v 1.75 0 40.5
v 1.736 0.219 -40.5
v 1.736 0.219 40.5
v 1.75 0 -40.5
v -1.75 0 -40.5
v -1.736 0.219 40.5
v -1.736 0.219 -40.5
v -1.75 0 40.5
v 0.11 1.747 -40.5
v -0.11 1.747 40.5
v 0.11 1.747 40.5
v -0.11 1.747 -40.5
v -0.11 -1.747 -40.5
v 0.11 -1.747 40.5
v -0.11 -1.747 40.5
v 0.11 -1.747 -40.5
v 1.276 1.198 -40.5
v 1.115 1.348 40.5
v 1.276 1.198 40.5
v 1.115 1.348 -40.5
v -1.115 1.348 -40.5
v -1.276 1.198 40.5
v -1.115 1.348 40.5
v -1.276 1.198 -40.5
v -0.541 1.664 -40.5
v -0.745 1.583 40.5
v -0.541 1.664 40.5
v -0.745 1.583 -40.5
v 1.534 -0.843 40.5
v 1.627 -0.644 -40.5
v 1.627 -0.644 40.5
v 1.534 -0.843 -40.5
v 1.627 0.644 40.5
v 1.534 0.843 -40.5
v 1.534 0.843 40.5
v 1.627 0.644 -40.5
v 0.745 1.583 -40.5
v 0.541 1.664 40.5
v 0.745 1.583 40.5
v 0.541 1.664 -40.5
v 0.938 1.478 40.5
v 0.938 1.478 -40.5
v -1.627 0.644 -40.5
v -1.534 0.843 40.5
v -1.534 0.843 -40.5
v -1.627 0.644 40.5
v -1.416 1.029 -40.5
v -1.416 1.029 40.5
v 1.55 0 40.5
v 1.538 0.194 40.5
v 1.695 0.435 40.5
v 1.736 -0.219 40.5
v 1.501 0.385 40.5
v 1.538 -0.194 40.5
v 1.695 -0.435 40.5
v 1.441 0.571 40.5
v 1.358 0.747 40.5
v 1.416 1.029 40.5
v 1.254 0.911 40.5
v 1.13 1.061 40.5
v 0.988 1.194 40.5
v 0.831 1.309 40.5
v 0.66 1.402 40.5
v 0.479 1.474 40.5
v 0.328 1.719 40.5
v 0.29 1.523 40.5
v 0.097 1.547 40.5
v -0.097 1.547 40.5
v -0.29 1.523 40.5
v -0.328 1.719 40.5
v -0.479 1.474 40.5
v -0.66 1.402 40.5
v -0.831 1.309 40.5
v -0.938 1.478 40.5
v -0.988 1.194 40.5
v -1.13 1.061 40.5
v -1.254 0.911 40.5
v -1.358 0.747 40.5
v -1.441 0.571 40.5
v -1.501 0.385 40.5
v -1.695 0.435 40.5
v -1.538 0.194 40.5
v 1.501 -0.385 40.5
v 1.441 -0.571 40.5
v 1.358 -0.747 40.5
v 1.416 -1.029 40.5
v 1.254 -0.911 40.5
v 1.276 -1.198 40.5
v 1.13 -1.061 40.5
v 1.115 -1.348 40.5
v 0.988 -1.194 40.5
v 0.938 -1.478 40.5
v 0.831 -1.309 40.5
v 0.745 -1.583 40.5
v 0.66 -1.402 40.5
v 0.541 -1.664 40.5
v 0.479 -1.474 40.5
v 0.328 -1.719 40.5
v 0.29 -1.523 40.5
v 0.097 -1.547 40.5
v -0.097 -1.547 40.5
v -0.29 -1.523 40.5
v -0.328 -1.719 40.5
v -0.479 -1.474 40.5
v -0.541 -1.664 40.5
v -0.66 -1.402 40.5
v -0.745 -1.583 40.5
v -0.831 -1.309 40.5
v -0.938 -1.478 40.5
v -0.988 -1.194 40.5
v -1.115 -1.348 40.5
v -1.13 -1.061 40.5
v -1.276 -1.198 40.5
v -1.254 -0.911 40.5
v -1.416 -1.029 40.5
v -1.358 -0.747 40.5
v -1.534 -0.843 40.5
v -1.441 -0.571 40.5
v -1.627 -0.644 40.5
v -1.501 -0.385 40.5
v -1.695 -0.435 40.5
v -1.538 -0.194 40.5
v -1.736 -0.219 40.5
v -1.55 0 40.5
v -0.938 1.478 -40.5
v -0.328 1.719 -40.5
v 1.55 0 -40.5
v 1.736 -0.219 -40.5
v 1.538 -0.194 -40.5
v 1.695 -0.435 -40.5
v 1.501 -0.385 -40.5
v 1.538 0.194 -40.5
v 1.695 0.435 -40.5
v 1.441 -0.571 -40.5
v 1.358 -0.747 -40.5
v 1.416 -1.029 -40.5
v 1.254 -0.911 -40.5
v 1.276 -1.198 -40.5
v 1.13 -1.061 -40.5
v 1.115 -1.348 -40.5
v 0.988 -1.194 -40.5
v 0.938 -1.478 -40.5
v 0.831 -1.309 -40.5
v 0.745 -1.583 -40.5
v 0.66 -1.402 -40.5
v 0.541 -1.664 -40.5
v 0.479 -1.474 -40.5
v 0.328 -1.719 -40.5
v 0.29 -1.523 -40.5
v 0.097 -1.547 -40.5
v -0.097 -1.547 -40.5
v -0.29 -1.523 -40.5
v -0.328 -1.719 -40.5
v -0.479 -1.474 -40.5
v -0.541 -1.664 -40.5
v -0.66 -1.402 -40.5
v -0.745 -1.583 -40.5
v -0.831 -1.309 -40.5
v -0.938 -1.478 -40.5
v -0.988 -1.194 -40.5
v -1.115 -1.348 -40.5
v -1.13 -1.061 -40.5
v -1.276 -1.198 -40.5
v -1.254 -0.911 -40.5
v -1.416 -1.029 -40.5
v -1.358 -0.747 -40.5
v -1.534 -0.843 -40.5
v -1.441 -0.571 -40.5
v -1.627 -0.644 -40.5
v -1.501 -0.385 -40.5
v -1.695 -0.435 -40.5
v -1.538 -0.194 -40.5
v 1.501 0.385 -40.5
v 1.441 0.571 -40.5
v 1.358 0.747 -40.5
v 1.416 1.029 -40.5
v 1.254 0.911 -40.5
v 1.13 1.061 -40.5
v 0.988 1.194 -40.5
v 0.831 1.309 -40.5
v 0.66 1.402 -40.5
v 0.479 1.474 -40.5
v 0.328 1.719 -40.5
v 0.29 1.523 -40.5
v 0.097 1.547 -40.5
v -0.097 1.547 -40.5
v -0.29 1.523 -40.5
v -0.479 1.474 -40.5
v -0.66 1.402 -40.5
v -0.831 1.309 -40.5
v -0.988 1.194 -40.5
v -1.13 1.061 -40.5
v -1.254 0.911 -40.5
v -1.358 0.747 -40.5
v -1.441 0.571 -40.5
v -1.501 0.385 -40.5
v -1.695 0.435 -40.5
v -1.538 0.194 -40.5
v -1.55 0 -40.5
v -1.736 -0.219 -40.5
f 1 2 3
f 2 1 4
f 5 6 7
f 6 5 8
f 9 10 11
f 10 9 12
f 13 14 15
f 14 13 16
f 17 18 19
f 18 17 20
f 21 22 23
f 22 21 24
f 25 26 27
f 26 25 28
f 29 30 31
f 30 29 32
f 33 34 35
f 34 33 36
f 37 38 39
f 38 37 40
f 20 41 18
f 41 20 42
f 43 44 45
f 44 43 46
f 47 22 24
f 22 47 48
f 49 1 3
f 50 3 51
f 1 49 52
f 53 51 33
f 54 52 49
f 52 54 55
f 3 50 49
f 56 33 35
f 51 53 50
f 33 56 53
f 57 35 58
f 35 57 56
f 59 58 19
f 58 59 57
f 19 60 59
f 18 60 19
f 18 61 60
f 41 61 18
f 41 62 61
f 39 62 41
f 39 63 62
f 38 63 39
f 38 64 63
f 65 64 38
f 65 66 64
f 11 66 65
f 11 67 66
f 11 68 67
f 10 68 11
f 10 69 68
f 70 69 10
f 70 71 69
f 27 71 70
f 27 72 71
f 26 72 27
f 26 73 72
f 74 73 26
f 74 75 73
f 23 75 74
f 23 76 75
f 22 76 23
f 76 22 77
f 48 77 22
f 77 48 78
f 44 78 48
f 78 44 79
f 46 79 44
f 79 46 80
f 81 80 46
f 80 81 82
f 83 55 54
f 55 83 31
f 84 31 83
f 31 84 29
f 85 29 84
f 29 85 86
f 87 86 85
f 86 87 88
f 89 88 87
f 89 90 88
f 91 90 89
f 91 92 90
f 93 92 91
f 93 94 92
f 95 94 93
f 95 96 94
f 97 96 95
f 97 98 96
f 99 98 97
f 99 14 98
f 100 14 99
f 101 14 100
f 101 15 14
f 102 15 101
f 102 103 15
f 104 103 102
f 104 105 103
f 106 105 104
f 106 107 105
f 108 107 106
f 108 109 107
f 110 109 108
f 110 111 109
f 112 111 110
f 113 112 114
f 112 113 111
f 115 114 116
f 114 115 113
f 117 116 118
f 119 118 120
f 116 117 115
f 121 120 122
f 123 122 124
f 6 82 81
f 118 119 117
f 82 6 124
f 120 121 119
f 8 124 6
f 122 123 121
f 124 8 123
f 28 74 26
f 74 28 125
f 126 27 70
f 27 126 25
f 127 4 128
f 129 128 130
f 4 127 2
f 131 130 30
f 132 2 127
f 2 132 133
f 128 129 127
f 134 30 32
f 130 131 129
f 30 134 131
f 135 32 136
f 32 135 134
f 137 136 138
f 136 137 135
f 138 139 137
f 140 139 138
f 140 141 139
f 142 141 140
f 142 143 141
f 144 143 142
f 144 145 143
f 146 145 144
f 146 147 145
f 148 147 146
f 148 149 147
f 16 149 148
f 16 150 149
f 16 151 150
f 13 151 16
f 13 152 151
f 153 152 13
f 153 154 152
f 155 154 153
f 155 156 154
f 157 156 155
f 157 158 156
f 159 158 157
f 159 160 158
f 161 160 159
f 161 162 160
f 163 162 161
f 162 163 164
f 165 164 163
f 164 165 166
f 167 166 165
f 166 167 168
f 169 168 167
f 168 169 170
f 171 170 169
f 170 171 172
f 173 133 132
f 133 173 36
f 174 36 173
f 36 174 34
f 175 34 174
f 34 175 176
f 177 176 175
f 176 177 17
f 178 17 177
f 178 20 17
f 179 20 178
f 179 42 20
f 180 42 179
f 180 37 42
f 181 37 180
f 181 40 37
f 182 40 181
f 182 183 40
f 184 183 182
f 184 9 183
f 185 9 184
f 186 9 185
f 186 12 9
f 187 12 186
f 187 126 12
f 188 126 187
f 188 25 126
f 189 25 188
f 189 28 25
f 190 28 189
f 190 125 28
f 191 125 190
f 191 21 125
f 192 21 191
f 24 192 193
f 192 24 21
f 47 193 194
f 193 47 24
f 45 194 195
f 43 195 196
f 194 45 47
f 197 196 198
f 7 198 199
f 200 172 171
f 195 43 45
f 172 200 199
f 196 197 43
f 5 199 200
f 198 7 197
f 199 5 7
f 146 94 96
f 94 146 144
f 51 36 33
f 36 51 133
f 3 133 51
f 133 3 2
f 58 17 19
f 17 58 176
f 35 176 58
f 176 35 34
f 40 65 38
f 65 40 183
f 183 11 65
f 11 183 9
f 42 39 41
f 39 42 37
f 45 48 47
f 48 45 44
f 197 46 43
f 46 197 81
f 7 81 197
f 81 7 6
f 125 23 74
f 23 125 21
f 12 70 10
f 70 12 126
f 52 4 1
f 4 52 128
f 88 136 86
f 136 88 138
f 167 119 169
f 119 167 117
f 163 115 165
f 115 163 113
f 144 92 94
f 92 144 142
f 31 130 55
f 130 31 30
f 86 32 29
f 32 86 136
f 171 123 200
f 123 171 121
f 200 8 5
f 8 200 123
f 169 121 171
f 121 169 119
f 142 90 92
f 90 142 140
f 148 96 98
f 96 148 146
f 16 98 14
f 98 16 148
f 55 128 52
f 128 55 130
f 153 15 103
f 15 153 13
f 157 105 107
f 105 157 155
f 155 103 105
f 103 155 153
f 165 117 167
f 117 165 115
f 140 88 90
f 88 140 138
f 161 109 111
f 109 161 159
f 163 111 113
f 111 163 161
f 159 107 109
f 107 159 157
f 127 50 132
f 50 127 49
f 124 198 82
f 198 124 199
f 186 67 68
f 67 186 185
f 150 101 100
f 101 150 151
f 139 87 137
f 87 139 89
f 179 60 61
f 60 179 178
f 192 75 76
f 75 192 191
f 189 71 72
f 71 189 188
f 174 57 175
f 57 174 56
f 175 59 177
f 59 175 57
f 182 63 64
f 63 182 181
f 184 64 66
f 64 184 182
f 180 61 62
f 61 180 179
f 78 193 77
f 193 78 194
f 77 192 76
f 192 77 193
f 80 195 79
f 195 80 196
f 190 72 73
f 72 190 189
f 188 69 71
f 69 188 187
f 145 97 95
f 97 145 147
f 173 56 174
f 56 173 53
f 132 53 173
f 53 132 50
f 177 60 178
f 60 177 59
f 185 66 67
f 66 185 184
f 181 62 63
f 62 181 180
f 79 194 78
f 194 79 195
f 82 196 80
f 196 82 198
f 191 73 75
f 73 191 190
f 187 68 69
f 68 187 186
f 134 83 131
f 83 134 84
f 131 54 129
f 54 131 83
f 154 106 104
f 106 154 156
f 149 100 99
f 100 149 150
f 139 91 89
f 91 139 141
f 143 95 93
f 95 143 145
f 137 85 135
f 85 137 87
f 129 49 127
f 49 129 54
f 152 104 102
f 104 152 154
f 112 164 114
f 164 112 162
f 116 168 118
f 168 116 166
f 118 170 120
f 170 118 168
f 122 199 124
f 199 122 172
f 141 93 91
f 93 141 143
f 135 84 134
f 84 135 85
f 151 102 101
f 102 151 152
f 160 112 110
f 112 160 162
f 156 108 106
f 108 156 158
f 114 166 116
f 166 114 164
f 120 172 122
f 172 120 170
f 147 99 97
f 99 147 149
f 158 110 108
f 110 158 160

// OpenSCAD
$fn = 50;


difference() {
	union() {
		translate(v = [0, 0, -40.5000000000]) {
			cylinder(h = 81, r = 1.7500000000);
		}
	}
	union() {
		translate(v = [0, 0, -100.0000000000]) {
			cylinder(h = 200, r = 1.5500000000);
		}
	}
}
